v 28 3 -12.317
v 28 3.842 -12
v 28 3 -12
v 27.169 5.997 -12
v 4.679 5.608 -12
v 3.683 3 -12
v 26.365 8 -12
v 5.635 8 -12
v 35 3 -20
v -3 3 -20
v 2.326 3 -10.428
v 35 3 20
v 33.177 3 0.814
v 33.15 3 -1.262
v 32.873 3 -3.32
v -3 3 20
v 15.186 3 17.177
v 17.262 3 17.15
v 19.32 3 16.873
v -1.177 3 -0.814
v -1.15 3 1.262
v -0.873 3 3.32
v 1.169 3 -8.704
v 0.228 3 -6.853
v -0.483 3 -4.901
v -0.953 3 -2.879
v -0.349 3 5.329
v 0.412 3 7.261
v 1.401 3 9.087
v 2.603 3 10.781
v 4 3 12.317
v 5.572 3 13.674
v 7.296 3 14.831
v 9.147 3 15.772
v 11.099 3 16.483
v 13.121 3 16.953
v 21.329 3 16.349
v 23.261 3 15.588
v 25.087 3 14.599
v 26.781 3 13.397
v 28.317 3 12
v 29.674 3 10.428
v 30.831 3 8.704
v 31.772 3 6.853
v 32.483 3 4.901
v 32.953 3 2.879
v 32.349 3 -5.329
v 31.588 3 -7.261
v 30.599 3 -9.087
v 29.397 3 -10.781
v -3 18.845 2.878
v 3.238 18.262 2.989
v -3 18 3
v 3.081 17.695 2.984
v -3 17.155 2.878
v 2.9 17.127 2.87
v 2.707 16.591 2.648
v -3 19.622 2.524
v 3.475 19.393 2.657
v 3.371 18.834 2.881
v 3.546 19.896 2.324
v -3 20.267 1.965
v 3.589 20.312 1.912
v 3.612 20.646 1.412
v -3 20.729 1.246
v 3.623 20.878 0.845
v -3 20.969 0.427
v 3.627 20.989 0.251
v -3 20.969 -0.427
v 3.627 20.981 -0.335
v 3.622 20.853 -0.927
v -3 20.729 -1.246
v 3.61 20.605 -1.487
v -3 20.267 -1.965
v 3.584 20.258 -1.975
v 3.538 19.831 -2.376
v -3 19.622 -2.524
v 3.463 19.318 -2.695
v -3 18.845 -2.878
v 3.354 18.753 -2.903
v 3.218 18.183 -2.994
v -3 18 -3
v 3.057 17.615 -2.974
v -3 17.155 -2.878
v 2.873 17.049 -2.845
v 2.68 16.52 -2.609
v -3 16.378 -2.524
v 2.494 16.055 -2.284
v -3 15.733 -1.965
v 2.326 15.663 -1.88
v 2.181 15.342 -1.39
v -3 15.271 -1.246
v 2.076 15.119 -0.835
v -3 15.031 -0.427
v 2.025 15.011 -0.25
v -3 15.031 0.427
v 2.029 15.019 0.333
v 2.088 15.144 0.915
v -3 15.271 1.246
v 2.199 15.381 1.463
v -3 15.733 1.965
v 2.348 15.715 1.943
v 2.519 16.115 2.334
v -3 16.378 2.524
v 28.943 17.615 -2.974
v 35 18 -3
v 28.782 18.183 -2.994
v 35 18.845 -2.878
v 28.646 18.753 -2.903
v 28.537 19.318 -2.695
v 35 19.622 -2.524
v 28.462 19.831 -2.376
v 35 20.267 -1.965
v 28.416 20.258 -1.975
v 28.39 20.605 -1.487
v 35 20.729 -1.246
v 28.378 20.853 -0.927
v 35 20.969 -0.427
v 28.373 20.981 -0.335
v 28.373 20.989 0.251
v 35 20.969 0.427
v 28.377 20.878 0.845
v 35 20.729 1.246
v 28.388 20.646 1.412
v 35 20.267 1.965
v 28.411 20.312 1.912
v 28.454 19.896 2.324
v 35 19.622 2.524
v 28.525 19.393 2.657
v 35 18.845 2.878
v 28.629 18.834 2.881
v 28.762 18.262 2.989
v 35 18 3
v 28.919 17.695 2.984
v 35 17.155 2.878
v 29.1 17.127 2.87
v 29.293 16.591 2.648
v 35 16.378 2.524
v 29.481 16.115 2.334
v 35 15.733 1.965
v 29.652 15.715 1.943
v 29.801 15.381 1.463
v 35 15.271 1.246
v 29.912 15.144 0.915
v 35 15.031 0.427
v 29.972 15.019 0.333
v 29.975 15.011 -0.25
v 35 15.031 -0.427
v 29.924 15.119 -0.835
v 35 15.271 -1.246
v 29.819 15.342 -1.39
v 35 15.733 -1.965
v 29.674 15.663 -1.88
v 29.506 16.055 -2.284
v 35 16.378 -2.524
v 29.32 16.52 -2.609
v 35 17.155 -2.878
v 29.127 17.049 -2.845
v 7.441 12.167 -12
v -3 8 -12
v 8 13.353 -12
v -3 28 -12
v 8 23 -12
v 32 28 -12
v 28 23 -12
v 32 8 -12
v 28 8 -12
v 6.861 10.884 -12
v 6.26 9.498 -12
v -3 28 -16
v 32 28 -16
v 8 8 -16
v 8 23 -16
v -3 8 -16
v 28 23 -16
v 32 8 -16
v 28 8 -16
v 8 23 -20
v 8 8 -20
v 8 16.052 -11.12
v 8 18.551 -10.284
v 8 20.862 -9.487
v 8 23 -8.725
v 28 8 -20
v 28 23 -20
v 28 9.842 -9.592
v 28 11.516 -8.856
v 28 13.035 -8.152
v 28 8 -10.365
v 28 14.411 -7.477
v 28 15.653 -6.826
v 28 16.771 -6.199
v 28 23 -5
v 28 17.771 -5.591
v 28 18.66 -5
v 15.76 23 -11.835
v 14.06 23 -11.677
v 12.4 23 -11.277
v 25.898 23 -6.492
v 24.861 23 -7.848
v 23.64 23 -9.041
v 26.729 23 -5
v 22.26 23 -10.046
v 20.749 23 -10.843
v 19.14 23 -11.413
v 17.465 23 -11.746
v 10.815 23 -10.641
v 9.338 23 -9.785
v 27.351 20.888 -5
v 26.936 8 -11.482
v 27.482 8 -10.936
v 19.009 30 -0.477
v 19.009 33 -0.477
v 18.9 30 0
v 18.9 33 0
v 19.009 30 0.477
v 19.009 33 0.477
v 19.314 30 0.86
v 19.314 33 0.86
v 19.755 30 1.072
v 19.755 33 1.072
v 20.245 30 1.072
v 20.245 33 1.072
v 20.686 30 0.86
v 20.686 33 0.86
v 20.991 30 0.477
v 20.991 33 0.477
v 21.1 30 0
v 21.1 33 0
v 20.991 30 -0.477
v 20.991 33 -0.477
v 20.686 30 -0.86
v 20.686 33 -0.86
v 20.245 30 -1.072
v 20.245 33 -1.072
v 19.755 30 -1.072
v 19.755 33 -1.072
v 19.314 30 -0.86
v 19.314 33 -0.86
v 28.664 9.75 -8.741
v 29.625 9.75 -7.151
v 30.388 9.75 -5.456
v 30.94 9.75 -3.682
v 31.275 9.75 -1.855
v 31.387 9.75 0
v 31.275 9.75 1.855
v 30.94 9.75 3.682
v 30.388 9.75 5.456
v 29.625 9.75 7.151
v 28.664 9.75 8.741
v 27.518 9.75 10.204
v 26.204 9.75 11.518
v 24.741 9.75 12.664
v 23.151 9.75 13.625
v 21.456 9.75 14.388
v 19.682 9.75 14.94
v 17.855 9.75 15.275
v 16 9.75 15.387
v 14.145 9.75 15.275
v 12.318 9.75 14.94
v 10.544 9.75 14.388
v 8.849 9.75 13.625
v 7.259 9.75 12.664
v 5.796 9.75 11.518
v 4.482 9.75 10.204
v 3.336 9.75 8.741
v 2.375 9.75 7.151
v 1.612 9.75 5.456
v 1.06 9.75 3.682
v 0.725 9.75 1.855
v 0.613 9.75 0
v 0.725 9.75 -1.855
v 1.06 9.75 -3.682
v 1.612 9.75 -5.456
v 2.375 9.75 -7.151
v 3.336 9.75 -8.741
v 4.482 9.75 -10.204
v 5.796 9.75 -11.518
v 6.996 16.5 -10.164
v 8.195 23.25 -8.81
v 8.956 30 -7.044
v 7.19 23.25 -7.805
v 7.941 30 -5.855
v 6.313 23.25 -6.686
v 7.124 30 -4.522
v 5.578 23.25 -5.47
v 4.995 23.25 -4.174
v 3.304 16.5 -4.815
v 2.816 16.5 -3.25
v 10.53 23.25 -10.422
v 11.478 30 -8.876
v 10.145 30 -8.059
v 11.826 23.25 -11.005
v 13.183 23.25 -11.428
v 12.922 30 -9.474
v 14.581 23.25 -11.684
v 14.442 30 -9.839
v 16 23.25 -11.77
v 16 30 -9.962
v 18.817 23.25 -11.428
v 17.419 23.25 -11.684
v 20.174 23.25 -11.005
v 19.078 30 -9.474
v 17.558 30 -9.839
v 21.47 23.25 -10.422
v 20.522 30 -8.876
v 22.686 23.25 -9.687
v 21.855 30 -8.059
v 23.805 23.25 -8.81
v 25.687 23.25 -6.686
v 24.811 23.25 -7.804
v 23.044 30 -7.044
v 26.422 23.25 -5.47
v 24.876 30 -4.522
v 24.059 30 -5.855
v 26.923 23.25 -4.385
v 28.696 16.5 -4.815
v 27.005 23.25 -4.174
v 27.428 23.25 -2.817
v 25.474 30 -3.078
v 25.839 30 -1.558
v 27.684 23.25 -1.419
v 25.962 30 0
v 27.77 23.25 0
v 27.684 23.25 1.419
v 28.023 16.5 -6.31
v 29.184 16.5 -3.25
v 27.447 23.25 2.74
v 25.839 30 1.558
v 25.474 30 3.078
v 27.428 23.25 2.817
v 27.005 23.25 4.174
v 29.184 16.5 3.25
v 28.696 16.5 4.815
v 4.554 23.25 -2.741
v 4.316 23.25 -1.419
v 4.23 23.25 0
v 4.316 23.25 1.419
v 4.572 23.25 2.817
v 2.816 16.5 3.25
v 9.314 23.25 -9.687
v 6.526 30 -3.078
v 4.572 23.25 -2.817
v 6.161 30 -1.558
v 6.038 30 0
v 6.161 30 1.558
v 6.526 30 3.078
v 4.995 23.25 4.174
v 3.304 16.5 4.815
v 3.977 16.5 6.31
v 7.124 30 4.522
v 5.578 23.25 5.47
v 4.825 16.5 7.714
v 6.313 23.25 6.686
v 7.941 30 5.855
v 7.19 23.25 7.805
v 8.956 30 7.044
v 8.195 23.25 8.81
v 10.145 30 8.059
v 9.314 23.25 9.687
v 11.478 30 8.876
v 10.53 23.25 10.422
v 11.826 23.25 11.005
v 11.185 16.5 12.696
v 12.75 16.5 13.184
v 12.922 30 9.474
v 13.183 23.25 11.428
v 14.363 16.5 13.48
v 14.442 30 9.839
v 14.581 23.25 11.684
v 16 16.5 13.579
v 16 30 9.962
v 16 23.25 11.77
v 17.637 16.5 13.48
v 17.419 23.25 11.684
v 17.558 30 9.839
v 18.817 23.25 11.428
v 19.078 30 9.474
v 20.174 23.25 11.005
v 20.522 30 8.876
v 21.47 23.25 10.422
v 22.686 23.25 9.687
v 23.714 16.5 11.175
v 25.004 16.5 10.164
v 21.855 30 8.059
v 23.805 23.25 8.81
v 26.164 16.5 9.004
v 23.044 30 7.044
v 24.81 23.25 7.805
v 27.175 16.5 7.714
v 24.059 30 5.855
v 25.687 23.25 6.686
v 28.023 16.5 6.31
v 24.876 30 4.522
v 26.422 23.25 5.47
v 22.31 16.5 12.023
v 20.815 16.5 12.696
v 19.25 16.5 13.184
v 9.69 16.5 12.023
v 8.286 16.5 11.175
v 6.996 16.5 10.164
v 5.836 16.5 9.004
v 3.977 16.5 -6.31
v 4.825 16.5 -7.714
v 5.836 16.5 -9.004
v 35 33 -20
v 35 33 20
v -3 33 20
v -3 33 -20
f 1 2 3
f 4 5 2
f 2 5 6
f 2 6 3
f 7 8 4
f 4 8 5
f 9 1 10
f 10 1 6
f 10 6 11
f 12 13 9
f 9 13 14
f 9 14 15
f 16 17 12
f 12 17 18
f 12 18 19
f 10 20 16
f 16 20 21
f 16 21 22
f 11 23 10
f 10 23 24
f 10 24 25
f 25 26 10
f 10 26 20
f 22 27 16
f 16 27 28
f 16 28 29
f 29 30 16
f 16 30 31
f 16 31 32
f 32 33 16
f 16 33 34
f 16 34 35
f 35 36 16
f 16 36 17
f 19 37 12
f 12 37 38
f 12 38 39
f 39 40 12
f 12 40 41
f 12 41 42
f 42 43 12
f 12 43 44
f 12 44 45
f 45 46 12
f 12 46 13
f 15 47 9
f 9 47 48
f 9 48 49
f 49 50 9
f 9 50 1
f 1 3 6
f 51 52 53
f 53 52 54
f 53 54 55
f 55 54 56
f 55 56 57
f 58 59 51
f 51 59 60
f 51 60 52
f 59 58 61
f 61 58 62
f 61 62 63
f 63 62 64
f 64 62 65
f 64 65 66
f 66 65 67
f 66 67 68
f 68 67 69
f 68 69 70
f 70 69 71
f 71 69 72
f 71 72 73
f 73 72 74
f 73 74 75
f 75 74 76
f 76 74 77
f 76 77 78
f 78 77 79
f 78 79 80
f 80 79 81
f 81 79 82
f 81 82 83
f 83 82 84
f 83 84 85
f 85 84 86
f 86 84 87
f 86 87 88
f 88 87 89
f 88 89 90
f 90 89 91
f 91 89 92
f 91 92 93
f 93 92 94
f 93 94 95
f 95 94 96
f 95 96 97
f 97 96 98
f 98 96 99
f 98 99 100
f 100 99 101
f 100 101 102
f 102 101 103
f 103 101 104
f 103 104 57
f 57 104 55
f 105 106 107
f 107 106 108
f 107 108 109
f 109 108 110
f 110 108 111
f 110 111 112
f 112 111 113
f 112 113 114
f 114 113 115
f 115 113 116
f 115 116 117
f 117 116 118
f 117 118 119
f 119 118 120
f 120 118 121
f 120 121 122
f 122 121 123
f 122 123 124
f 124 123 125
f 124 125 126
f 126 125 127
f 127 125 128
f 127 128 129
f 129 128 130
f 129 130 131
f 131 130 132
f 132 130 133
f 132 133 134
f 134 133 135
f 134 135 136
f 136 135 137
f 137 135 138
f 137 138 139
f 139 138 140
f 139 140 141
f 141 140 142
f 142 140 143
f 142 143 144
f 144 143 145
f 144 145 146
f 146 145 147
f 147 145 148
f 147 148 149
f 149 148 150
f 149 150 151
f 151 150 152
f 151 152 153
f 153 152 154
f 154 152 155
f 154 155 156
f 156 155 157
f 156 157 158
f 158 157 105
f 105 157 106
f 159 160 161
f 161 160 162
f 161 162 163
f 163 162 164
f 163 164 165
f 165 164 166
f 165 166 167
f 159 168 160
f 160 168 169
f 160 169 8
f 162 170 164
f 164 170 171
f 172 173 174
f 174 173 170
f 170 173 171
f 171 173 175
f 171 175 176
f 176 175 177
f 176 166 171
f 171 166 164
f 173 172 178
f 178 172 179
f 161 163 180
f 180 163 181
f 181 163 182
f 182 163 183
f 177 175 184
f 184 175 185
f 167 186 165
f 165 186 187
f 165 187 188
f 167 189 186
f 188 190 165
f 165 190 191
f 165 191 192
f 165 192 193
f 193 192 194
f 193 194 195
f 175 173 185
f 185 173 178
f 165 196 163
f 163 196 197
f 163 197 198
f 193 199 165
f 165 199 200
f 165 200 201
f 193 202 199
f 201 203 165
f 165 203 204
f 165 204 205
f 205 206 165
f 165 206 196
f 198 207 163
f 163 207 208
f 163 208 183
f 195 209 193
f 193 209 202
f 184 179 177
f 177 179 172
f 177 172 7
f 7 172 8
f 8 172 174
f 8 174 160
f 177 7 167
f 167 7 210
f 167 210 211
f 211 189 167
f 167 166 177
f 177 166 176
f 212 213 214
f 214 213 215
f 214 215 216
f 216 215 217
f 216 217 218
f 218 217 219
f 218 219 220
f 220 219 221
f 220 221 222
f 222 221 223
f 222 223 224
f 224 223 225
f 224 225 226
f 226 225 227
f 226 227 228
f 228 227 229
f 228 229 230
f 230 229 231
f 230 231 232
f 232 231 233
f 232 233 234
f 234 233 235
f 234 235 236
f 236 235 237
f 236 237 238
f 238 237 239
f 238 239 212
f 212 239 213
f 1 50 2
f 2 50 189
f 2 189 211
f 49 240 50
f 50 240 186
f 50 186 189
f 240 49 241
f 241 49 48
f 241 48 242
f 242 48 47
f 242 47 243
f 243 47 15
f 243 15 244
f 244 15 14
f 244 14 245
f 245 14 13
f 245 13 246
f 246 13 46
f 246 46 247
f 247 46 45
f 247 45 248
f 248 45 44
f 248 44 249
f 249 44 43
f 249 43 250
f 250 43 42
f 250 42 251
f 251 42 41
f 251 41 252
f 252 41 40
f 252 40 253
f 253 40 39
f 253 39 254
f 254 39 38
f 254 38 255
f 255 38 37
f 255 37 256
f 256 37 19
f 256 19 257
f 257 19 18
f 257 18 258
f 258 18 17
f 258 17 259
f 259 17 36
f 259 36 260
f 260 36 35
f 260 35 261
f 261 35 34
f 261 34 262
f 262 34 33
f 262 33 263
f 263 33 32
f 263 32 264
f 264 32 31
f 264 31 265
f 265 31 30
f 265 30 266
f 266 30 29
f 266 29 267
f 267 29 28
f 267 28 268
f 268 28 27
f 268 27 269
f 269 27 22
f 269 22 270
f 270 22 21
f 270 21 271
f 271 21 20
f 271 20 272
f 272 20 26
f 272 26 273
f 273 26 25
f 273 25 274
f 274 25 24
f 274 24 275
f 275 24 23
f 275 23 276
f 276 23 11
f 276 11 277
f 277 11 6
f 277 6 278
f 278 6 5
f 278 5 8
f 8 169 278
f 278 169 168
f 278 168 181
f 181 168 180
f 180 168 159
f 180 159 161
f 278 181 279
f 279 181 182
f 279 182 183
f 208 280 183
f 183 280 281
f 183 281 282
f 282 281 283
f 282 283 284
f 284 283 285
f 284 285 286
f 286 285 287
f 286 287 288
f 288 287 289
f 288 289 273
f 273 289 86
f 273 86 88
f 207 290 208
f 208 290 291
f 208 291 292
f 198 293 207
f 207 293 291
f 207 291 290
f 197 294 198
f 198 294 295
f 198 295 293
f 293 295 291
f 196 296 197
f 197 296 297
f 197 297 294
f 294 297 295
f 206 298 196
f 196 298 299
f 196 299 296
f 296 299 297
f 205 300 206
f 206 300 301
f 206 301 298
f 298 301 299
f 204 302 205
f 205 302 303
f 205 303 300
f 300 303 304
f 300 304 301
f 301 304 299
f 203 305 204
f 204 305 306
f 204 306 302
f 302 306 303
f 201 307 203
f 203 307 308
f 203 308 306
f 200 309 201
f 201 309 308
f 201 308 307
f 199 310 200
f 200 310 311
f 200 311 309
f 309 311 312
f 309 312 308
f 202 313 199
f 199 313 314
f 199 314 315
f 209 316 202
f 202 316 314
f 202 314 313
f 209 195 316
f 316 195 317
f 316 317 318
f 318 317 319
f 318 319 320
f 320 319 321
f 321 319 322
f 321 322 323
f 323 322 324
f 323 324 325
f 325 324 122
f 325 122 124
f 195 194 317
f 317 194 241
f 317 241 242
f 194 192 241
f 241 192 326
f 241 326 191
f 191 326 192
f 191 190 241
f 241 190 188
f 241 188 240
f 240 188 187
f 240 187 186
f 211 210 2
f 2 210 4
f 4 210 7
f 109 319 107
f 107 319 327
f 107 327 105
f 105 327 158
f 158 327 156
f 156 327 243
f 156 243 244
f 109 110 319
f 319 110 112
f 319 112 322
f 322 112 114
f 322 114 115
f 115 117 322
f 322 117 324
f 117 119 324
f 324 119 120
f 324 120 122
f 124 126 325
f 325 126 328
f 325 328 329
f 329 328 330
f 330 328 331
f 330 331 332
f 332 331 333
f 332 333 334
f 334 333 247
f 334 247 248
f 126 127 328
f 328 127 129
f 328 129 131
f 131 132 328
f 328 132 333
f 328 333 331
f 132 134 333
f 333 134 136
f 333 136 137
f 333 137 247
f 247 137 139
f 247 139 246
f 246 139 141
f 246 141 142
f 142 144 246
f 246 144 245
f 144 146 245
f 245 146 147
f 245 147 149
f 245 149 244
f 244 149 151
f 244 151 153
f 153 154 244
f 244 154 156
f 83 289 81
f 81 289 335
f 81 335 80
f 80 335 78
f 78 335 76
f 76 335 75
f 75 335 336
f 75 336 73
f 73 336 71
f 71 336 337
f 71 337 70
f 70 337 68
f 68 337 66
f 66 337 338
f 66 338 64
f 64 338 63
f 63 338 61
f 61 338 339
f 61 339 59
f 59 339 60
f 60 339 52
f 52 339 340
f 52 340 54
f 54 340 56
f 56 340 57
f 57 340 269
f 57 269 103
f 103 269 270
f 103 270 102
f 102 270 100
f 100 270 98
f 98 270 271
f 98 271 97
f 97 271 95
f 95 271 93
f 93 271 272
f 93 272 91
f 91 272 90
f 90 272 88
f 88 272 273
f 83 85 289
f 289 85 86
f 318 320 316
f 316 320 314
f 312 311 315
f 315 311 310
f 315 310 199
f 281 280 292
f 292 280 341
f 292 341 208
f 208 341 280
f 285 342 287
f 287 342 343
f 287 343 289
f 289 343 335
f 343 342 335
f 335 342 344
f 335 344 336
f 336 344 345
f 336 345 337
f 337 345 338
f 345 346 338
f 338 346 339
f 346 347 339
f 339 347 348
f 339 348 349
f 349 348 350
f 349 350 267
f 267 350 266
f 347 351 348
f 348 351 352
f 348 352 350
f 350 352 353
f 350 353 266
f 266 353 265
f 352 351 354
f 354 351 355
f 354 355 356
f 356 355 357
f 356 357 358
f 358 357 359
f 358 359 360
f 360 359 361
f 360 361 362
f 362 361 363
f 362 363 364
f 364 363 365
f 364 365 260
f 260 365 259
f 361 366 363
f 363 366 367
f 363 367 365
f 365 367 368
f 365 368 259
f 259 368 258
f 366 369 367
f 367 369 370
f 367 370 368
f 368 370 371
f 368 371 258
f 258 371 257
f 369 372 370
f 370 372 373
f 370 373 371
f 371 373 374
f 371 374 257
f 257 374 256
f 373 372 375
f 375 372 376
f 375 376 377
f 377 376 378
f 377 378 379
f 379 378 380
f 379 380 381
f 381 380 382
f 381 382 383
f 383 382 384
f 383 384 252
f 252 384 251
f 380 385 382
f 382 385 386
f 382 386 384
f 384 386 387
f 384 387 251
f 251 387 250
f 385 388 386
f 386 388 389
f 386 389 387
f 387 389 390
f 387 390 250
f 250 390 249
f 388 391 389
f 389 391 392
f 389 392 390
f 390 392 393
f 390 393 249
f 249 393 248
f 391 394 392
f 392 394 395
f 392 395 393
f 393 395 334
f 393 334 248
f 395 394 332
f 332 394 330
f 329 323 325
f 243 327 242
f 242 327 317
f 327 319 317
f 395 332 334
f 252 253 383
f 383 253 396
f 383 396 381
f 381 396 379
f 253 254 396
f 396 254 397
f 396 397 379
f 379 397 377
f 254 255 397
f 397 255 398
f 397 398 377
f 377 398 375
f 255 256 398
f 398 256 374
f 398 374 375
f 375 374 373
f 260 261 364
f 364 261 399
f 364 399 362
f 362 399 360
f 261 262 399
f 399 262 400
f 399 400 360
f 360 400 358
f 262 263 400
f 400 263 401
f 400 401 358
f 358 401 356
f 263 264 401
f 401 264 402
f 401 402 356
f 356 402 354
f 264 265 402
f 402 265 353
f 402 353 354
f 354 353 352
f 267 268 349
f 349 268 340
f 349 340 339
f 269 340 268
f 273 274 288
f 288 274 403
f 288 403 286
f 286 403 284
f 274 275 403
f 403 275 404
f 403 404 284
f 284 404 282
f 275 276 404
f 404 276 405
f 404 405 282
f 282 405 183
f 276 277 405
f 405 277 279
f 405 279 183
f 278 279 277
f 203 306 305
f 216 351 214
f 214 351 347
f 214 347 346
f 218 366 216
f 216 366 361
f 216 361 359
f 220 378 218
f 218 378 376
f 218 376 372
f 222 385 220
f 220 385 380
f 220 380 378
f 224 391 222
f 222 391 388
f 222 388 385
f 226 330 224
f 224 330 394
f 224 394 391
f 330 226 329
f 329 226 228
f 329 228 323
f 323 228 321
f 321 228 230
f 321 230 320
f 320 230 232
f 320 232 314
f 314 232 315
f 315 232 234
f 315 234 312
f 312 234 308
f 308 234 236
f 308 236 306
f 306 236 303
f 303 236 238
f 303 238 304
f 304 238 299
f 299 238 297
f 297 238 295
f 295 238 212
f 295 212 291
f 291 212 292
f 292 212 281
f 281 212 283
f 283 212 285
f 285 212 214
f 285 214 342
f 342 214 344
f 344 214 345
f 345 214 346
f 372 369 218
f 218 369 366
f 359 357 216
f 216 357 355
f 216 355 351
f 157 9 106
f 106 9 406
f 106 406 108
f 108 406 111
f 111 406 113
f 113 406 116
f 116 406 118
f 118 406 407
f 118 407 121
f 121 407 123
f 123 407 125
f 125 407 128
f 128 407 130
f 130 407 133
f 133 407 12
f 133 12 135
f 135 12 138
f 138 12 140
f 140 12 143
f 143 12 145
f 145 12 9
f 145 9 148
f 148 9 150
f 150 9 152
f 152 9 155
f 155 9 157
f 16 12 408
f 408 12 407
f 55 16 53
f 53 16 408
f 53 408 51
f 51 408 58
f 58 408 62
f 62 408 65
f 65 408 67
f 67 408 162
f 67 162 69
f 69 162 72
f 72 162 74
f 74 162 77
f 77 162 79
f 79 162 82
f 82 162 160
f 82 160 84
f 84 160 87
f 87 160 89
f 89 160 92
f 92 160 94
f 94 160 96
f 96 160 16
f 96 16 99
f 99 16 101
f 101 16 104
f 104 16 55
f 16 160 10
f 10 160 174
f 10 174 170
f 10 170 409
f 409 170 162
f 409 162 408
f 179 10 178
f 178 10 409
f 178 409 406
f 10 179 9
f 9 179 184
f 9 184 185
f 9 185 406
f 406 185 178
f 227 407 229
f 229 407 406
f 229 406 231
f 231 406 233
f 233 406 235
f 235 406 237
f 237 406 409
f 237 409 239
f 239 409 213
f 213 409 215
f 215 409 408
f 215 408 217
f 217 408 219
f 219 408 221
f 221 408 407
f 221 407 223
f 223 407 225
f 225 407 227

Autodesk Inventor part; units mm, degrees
ref_plane "YZ Plane" through (0, 0, 0) normal (1, 0, 0) x (0, 1, 0)
ref_plane "XZ Plane" through (0, 0, 0) normal (0, 1, 0) x (-1, 0, 0)
ref_plane "XY Plane" through (0, 0, 0) normal (0, 0, 1) x (1, 0, 0)
ref_plane "Work Plane13" through (0, 3, 0) normal (0, 1, 0) x (1, 0, 0)
sketch "Sketch45" plane through (0, 3, 0) normal (0, 1, 0) x (1, 0, 0)
  line L0 (35, -20) -> (-3, -20)
  line L1 (-3, -20) -> (-3, 20)
  line L2 (-3, 20) -> (35, 20)
  line L3 (35, 20) -> (35, -20)
  point P0 (0, 0)
  dimension "d142" = 38
  dimension "d143" = 40
extrude "Extrusion34" add sketch "Sketch45" along normal blind 30
sketch "Sketch46" plane through (0, 33, 0) normal (0, 1, 0) x (1, 0, 0)
  point P0 (0, 0)
ref_plane "Work Plane11" through (0, 0, 0) normal (0, -1, 0) x (1, 0, 0)
sketch "Sketch47" plane through (0, 0, 0) normal (0, -1, 0) x (1, 0, 0)
  circle A0 centre (16, 0) radius 18
  point P0 (0, 0)
  dimension "d146" = 36
extrude "Extrusion35" cut sketch "Sketch47" against normal blind 30 draft -15
sketch "Sketch48" plane through (0, 33, 0) normal (0, 1, 0) x (1, 0, 0)
  point P0 (0, 0)
sketch "Sketch49" plane through (0, 33, 0) normal (0, 1, 0) x (1, 0, 0)
  circle A0 centre (20, 0) radius 1.1
  point P0 (0, 0)
  dimension "d149" = 2.2
extrude "Extrusion36" cut sketch "Sketch49" against normal through all
ref_plane "Work Plane7" through (35, 3, -20) normal (0, 0, -1) x (-1, 0, 0)
sketch "Sketch58" plane through (35, 3, -20) normal (0, 0, -1) x (-1, 0, 0)
  line L0 (7, 20) -> (27, 20)
  line L1 (27, 20) -> (27, 5)
  line L2 (27, 5) -> (7, 5)
  line L3 (7, 5) -> (7, 20)
  point P0 (35, -3)
  dimension "d156" = 20
  dimension "d157" = 15
extrude "Extrusion38" cut sketch "Sketch58" against normal blind 15
ref_plane "Work Plane4" through (-3, 3, -20) normal (-1, 0, 0) x (0, 0, 1)
sketch "Sketch59" plane through (-3, 3, -20) normal (-1, 0, 0) x (0, 0, 1)
  line L0 (4, 25) -> (8, 25)
  line L1 (8, 25) -> (8, 5)
  line L2 (8, 5) -> (4, 5)
  line L3 (4, 5) -> (4, 25)
  point P0 (20, -3)
  dimension "d160" = 4
  dimension "d161" = 20
extrude "Extrusion39" cut sketch "Sketch59" against normal blind 35
ref_plane "Work Plane1" through (0, 3, 0) normal (0, 1, 0) x (1, 0, 0)
ref_plane "Work Plane6" through (0, 23, 0) normal (0, 1, 0) x (1, 0, 0)
sketch "Sketch62" plane through (-3, 3, -20) normal (-1, 0, 0) x (0, 0, 1)
  circle A0 centre (20, 15) radius 3
  point P0 (20, -3)
  dimension "d172" = 6
extrude "Extrusion42" cut sketch "Sketch62" against normal through all
sketch "Sketch65" plane through (0, 3, 0) normal (0, -1, 0) x (1, 0, 0)
  line L0 (-3, -12) -> (32, -12) projected
  line L1 (28, -20) -> (28, -16) projected
  line L2 (3.5815, -12) -> (28, -12)
  line L3 (28, -12) -> (28, -17.2375)
  line L4 (28, -17.2375) -> (3.5815, -17.2375)
  line L5 (3.5815, -17.2375) -> (3.5815, -12)
  point P0 (0, 0)
extrude "Extrusion44" add sketch "Sketch65" against normal blind 5
properties part number "liquid port_only_v05"
